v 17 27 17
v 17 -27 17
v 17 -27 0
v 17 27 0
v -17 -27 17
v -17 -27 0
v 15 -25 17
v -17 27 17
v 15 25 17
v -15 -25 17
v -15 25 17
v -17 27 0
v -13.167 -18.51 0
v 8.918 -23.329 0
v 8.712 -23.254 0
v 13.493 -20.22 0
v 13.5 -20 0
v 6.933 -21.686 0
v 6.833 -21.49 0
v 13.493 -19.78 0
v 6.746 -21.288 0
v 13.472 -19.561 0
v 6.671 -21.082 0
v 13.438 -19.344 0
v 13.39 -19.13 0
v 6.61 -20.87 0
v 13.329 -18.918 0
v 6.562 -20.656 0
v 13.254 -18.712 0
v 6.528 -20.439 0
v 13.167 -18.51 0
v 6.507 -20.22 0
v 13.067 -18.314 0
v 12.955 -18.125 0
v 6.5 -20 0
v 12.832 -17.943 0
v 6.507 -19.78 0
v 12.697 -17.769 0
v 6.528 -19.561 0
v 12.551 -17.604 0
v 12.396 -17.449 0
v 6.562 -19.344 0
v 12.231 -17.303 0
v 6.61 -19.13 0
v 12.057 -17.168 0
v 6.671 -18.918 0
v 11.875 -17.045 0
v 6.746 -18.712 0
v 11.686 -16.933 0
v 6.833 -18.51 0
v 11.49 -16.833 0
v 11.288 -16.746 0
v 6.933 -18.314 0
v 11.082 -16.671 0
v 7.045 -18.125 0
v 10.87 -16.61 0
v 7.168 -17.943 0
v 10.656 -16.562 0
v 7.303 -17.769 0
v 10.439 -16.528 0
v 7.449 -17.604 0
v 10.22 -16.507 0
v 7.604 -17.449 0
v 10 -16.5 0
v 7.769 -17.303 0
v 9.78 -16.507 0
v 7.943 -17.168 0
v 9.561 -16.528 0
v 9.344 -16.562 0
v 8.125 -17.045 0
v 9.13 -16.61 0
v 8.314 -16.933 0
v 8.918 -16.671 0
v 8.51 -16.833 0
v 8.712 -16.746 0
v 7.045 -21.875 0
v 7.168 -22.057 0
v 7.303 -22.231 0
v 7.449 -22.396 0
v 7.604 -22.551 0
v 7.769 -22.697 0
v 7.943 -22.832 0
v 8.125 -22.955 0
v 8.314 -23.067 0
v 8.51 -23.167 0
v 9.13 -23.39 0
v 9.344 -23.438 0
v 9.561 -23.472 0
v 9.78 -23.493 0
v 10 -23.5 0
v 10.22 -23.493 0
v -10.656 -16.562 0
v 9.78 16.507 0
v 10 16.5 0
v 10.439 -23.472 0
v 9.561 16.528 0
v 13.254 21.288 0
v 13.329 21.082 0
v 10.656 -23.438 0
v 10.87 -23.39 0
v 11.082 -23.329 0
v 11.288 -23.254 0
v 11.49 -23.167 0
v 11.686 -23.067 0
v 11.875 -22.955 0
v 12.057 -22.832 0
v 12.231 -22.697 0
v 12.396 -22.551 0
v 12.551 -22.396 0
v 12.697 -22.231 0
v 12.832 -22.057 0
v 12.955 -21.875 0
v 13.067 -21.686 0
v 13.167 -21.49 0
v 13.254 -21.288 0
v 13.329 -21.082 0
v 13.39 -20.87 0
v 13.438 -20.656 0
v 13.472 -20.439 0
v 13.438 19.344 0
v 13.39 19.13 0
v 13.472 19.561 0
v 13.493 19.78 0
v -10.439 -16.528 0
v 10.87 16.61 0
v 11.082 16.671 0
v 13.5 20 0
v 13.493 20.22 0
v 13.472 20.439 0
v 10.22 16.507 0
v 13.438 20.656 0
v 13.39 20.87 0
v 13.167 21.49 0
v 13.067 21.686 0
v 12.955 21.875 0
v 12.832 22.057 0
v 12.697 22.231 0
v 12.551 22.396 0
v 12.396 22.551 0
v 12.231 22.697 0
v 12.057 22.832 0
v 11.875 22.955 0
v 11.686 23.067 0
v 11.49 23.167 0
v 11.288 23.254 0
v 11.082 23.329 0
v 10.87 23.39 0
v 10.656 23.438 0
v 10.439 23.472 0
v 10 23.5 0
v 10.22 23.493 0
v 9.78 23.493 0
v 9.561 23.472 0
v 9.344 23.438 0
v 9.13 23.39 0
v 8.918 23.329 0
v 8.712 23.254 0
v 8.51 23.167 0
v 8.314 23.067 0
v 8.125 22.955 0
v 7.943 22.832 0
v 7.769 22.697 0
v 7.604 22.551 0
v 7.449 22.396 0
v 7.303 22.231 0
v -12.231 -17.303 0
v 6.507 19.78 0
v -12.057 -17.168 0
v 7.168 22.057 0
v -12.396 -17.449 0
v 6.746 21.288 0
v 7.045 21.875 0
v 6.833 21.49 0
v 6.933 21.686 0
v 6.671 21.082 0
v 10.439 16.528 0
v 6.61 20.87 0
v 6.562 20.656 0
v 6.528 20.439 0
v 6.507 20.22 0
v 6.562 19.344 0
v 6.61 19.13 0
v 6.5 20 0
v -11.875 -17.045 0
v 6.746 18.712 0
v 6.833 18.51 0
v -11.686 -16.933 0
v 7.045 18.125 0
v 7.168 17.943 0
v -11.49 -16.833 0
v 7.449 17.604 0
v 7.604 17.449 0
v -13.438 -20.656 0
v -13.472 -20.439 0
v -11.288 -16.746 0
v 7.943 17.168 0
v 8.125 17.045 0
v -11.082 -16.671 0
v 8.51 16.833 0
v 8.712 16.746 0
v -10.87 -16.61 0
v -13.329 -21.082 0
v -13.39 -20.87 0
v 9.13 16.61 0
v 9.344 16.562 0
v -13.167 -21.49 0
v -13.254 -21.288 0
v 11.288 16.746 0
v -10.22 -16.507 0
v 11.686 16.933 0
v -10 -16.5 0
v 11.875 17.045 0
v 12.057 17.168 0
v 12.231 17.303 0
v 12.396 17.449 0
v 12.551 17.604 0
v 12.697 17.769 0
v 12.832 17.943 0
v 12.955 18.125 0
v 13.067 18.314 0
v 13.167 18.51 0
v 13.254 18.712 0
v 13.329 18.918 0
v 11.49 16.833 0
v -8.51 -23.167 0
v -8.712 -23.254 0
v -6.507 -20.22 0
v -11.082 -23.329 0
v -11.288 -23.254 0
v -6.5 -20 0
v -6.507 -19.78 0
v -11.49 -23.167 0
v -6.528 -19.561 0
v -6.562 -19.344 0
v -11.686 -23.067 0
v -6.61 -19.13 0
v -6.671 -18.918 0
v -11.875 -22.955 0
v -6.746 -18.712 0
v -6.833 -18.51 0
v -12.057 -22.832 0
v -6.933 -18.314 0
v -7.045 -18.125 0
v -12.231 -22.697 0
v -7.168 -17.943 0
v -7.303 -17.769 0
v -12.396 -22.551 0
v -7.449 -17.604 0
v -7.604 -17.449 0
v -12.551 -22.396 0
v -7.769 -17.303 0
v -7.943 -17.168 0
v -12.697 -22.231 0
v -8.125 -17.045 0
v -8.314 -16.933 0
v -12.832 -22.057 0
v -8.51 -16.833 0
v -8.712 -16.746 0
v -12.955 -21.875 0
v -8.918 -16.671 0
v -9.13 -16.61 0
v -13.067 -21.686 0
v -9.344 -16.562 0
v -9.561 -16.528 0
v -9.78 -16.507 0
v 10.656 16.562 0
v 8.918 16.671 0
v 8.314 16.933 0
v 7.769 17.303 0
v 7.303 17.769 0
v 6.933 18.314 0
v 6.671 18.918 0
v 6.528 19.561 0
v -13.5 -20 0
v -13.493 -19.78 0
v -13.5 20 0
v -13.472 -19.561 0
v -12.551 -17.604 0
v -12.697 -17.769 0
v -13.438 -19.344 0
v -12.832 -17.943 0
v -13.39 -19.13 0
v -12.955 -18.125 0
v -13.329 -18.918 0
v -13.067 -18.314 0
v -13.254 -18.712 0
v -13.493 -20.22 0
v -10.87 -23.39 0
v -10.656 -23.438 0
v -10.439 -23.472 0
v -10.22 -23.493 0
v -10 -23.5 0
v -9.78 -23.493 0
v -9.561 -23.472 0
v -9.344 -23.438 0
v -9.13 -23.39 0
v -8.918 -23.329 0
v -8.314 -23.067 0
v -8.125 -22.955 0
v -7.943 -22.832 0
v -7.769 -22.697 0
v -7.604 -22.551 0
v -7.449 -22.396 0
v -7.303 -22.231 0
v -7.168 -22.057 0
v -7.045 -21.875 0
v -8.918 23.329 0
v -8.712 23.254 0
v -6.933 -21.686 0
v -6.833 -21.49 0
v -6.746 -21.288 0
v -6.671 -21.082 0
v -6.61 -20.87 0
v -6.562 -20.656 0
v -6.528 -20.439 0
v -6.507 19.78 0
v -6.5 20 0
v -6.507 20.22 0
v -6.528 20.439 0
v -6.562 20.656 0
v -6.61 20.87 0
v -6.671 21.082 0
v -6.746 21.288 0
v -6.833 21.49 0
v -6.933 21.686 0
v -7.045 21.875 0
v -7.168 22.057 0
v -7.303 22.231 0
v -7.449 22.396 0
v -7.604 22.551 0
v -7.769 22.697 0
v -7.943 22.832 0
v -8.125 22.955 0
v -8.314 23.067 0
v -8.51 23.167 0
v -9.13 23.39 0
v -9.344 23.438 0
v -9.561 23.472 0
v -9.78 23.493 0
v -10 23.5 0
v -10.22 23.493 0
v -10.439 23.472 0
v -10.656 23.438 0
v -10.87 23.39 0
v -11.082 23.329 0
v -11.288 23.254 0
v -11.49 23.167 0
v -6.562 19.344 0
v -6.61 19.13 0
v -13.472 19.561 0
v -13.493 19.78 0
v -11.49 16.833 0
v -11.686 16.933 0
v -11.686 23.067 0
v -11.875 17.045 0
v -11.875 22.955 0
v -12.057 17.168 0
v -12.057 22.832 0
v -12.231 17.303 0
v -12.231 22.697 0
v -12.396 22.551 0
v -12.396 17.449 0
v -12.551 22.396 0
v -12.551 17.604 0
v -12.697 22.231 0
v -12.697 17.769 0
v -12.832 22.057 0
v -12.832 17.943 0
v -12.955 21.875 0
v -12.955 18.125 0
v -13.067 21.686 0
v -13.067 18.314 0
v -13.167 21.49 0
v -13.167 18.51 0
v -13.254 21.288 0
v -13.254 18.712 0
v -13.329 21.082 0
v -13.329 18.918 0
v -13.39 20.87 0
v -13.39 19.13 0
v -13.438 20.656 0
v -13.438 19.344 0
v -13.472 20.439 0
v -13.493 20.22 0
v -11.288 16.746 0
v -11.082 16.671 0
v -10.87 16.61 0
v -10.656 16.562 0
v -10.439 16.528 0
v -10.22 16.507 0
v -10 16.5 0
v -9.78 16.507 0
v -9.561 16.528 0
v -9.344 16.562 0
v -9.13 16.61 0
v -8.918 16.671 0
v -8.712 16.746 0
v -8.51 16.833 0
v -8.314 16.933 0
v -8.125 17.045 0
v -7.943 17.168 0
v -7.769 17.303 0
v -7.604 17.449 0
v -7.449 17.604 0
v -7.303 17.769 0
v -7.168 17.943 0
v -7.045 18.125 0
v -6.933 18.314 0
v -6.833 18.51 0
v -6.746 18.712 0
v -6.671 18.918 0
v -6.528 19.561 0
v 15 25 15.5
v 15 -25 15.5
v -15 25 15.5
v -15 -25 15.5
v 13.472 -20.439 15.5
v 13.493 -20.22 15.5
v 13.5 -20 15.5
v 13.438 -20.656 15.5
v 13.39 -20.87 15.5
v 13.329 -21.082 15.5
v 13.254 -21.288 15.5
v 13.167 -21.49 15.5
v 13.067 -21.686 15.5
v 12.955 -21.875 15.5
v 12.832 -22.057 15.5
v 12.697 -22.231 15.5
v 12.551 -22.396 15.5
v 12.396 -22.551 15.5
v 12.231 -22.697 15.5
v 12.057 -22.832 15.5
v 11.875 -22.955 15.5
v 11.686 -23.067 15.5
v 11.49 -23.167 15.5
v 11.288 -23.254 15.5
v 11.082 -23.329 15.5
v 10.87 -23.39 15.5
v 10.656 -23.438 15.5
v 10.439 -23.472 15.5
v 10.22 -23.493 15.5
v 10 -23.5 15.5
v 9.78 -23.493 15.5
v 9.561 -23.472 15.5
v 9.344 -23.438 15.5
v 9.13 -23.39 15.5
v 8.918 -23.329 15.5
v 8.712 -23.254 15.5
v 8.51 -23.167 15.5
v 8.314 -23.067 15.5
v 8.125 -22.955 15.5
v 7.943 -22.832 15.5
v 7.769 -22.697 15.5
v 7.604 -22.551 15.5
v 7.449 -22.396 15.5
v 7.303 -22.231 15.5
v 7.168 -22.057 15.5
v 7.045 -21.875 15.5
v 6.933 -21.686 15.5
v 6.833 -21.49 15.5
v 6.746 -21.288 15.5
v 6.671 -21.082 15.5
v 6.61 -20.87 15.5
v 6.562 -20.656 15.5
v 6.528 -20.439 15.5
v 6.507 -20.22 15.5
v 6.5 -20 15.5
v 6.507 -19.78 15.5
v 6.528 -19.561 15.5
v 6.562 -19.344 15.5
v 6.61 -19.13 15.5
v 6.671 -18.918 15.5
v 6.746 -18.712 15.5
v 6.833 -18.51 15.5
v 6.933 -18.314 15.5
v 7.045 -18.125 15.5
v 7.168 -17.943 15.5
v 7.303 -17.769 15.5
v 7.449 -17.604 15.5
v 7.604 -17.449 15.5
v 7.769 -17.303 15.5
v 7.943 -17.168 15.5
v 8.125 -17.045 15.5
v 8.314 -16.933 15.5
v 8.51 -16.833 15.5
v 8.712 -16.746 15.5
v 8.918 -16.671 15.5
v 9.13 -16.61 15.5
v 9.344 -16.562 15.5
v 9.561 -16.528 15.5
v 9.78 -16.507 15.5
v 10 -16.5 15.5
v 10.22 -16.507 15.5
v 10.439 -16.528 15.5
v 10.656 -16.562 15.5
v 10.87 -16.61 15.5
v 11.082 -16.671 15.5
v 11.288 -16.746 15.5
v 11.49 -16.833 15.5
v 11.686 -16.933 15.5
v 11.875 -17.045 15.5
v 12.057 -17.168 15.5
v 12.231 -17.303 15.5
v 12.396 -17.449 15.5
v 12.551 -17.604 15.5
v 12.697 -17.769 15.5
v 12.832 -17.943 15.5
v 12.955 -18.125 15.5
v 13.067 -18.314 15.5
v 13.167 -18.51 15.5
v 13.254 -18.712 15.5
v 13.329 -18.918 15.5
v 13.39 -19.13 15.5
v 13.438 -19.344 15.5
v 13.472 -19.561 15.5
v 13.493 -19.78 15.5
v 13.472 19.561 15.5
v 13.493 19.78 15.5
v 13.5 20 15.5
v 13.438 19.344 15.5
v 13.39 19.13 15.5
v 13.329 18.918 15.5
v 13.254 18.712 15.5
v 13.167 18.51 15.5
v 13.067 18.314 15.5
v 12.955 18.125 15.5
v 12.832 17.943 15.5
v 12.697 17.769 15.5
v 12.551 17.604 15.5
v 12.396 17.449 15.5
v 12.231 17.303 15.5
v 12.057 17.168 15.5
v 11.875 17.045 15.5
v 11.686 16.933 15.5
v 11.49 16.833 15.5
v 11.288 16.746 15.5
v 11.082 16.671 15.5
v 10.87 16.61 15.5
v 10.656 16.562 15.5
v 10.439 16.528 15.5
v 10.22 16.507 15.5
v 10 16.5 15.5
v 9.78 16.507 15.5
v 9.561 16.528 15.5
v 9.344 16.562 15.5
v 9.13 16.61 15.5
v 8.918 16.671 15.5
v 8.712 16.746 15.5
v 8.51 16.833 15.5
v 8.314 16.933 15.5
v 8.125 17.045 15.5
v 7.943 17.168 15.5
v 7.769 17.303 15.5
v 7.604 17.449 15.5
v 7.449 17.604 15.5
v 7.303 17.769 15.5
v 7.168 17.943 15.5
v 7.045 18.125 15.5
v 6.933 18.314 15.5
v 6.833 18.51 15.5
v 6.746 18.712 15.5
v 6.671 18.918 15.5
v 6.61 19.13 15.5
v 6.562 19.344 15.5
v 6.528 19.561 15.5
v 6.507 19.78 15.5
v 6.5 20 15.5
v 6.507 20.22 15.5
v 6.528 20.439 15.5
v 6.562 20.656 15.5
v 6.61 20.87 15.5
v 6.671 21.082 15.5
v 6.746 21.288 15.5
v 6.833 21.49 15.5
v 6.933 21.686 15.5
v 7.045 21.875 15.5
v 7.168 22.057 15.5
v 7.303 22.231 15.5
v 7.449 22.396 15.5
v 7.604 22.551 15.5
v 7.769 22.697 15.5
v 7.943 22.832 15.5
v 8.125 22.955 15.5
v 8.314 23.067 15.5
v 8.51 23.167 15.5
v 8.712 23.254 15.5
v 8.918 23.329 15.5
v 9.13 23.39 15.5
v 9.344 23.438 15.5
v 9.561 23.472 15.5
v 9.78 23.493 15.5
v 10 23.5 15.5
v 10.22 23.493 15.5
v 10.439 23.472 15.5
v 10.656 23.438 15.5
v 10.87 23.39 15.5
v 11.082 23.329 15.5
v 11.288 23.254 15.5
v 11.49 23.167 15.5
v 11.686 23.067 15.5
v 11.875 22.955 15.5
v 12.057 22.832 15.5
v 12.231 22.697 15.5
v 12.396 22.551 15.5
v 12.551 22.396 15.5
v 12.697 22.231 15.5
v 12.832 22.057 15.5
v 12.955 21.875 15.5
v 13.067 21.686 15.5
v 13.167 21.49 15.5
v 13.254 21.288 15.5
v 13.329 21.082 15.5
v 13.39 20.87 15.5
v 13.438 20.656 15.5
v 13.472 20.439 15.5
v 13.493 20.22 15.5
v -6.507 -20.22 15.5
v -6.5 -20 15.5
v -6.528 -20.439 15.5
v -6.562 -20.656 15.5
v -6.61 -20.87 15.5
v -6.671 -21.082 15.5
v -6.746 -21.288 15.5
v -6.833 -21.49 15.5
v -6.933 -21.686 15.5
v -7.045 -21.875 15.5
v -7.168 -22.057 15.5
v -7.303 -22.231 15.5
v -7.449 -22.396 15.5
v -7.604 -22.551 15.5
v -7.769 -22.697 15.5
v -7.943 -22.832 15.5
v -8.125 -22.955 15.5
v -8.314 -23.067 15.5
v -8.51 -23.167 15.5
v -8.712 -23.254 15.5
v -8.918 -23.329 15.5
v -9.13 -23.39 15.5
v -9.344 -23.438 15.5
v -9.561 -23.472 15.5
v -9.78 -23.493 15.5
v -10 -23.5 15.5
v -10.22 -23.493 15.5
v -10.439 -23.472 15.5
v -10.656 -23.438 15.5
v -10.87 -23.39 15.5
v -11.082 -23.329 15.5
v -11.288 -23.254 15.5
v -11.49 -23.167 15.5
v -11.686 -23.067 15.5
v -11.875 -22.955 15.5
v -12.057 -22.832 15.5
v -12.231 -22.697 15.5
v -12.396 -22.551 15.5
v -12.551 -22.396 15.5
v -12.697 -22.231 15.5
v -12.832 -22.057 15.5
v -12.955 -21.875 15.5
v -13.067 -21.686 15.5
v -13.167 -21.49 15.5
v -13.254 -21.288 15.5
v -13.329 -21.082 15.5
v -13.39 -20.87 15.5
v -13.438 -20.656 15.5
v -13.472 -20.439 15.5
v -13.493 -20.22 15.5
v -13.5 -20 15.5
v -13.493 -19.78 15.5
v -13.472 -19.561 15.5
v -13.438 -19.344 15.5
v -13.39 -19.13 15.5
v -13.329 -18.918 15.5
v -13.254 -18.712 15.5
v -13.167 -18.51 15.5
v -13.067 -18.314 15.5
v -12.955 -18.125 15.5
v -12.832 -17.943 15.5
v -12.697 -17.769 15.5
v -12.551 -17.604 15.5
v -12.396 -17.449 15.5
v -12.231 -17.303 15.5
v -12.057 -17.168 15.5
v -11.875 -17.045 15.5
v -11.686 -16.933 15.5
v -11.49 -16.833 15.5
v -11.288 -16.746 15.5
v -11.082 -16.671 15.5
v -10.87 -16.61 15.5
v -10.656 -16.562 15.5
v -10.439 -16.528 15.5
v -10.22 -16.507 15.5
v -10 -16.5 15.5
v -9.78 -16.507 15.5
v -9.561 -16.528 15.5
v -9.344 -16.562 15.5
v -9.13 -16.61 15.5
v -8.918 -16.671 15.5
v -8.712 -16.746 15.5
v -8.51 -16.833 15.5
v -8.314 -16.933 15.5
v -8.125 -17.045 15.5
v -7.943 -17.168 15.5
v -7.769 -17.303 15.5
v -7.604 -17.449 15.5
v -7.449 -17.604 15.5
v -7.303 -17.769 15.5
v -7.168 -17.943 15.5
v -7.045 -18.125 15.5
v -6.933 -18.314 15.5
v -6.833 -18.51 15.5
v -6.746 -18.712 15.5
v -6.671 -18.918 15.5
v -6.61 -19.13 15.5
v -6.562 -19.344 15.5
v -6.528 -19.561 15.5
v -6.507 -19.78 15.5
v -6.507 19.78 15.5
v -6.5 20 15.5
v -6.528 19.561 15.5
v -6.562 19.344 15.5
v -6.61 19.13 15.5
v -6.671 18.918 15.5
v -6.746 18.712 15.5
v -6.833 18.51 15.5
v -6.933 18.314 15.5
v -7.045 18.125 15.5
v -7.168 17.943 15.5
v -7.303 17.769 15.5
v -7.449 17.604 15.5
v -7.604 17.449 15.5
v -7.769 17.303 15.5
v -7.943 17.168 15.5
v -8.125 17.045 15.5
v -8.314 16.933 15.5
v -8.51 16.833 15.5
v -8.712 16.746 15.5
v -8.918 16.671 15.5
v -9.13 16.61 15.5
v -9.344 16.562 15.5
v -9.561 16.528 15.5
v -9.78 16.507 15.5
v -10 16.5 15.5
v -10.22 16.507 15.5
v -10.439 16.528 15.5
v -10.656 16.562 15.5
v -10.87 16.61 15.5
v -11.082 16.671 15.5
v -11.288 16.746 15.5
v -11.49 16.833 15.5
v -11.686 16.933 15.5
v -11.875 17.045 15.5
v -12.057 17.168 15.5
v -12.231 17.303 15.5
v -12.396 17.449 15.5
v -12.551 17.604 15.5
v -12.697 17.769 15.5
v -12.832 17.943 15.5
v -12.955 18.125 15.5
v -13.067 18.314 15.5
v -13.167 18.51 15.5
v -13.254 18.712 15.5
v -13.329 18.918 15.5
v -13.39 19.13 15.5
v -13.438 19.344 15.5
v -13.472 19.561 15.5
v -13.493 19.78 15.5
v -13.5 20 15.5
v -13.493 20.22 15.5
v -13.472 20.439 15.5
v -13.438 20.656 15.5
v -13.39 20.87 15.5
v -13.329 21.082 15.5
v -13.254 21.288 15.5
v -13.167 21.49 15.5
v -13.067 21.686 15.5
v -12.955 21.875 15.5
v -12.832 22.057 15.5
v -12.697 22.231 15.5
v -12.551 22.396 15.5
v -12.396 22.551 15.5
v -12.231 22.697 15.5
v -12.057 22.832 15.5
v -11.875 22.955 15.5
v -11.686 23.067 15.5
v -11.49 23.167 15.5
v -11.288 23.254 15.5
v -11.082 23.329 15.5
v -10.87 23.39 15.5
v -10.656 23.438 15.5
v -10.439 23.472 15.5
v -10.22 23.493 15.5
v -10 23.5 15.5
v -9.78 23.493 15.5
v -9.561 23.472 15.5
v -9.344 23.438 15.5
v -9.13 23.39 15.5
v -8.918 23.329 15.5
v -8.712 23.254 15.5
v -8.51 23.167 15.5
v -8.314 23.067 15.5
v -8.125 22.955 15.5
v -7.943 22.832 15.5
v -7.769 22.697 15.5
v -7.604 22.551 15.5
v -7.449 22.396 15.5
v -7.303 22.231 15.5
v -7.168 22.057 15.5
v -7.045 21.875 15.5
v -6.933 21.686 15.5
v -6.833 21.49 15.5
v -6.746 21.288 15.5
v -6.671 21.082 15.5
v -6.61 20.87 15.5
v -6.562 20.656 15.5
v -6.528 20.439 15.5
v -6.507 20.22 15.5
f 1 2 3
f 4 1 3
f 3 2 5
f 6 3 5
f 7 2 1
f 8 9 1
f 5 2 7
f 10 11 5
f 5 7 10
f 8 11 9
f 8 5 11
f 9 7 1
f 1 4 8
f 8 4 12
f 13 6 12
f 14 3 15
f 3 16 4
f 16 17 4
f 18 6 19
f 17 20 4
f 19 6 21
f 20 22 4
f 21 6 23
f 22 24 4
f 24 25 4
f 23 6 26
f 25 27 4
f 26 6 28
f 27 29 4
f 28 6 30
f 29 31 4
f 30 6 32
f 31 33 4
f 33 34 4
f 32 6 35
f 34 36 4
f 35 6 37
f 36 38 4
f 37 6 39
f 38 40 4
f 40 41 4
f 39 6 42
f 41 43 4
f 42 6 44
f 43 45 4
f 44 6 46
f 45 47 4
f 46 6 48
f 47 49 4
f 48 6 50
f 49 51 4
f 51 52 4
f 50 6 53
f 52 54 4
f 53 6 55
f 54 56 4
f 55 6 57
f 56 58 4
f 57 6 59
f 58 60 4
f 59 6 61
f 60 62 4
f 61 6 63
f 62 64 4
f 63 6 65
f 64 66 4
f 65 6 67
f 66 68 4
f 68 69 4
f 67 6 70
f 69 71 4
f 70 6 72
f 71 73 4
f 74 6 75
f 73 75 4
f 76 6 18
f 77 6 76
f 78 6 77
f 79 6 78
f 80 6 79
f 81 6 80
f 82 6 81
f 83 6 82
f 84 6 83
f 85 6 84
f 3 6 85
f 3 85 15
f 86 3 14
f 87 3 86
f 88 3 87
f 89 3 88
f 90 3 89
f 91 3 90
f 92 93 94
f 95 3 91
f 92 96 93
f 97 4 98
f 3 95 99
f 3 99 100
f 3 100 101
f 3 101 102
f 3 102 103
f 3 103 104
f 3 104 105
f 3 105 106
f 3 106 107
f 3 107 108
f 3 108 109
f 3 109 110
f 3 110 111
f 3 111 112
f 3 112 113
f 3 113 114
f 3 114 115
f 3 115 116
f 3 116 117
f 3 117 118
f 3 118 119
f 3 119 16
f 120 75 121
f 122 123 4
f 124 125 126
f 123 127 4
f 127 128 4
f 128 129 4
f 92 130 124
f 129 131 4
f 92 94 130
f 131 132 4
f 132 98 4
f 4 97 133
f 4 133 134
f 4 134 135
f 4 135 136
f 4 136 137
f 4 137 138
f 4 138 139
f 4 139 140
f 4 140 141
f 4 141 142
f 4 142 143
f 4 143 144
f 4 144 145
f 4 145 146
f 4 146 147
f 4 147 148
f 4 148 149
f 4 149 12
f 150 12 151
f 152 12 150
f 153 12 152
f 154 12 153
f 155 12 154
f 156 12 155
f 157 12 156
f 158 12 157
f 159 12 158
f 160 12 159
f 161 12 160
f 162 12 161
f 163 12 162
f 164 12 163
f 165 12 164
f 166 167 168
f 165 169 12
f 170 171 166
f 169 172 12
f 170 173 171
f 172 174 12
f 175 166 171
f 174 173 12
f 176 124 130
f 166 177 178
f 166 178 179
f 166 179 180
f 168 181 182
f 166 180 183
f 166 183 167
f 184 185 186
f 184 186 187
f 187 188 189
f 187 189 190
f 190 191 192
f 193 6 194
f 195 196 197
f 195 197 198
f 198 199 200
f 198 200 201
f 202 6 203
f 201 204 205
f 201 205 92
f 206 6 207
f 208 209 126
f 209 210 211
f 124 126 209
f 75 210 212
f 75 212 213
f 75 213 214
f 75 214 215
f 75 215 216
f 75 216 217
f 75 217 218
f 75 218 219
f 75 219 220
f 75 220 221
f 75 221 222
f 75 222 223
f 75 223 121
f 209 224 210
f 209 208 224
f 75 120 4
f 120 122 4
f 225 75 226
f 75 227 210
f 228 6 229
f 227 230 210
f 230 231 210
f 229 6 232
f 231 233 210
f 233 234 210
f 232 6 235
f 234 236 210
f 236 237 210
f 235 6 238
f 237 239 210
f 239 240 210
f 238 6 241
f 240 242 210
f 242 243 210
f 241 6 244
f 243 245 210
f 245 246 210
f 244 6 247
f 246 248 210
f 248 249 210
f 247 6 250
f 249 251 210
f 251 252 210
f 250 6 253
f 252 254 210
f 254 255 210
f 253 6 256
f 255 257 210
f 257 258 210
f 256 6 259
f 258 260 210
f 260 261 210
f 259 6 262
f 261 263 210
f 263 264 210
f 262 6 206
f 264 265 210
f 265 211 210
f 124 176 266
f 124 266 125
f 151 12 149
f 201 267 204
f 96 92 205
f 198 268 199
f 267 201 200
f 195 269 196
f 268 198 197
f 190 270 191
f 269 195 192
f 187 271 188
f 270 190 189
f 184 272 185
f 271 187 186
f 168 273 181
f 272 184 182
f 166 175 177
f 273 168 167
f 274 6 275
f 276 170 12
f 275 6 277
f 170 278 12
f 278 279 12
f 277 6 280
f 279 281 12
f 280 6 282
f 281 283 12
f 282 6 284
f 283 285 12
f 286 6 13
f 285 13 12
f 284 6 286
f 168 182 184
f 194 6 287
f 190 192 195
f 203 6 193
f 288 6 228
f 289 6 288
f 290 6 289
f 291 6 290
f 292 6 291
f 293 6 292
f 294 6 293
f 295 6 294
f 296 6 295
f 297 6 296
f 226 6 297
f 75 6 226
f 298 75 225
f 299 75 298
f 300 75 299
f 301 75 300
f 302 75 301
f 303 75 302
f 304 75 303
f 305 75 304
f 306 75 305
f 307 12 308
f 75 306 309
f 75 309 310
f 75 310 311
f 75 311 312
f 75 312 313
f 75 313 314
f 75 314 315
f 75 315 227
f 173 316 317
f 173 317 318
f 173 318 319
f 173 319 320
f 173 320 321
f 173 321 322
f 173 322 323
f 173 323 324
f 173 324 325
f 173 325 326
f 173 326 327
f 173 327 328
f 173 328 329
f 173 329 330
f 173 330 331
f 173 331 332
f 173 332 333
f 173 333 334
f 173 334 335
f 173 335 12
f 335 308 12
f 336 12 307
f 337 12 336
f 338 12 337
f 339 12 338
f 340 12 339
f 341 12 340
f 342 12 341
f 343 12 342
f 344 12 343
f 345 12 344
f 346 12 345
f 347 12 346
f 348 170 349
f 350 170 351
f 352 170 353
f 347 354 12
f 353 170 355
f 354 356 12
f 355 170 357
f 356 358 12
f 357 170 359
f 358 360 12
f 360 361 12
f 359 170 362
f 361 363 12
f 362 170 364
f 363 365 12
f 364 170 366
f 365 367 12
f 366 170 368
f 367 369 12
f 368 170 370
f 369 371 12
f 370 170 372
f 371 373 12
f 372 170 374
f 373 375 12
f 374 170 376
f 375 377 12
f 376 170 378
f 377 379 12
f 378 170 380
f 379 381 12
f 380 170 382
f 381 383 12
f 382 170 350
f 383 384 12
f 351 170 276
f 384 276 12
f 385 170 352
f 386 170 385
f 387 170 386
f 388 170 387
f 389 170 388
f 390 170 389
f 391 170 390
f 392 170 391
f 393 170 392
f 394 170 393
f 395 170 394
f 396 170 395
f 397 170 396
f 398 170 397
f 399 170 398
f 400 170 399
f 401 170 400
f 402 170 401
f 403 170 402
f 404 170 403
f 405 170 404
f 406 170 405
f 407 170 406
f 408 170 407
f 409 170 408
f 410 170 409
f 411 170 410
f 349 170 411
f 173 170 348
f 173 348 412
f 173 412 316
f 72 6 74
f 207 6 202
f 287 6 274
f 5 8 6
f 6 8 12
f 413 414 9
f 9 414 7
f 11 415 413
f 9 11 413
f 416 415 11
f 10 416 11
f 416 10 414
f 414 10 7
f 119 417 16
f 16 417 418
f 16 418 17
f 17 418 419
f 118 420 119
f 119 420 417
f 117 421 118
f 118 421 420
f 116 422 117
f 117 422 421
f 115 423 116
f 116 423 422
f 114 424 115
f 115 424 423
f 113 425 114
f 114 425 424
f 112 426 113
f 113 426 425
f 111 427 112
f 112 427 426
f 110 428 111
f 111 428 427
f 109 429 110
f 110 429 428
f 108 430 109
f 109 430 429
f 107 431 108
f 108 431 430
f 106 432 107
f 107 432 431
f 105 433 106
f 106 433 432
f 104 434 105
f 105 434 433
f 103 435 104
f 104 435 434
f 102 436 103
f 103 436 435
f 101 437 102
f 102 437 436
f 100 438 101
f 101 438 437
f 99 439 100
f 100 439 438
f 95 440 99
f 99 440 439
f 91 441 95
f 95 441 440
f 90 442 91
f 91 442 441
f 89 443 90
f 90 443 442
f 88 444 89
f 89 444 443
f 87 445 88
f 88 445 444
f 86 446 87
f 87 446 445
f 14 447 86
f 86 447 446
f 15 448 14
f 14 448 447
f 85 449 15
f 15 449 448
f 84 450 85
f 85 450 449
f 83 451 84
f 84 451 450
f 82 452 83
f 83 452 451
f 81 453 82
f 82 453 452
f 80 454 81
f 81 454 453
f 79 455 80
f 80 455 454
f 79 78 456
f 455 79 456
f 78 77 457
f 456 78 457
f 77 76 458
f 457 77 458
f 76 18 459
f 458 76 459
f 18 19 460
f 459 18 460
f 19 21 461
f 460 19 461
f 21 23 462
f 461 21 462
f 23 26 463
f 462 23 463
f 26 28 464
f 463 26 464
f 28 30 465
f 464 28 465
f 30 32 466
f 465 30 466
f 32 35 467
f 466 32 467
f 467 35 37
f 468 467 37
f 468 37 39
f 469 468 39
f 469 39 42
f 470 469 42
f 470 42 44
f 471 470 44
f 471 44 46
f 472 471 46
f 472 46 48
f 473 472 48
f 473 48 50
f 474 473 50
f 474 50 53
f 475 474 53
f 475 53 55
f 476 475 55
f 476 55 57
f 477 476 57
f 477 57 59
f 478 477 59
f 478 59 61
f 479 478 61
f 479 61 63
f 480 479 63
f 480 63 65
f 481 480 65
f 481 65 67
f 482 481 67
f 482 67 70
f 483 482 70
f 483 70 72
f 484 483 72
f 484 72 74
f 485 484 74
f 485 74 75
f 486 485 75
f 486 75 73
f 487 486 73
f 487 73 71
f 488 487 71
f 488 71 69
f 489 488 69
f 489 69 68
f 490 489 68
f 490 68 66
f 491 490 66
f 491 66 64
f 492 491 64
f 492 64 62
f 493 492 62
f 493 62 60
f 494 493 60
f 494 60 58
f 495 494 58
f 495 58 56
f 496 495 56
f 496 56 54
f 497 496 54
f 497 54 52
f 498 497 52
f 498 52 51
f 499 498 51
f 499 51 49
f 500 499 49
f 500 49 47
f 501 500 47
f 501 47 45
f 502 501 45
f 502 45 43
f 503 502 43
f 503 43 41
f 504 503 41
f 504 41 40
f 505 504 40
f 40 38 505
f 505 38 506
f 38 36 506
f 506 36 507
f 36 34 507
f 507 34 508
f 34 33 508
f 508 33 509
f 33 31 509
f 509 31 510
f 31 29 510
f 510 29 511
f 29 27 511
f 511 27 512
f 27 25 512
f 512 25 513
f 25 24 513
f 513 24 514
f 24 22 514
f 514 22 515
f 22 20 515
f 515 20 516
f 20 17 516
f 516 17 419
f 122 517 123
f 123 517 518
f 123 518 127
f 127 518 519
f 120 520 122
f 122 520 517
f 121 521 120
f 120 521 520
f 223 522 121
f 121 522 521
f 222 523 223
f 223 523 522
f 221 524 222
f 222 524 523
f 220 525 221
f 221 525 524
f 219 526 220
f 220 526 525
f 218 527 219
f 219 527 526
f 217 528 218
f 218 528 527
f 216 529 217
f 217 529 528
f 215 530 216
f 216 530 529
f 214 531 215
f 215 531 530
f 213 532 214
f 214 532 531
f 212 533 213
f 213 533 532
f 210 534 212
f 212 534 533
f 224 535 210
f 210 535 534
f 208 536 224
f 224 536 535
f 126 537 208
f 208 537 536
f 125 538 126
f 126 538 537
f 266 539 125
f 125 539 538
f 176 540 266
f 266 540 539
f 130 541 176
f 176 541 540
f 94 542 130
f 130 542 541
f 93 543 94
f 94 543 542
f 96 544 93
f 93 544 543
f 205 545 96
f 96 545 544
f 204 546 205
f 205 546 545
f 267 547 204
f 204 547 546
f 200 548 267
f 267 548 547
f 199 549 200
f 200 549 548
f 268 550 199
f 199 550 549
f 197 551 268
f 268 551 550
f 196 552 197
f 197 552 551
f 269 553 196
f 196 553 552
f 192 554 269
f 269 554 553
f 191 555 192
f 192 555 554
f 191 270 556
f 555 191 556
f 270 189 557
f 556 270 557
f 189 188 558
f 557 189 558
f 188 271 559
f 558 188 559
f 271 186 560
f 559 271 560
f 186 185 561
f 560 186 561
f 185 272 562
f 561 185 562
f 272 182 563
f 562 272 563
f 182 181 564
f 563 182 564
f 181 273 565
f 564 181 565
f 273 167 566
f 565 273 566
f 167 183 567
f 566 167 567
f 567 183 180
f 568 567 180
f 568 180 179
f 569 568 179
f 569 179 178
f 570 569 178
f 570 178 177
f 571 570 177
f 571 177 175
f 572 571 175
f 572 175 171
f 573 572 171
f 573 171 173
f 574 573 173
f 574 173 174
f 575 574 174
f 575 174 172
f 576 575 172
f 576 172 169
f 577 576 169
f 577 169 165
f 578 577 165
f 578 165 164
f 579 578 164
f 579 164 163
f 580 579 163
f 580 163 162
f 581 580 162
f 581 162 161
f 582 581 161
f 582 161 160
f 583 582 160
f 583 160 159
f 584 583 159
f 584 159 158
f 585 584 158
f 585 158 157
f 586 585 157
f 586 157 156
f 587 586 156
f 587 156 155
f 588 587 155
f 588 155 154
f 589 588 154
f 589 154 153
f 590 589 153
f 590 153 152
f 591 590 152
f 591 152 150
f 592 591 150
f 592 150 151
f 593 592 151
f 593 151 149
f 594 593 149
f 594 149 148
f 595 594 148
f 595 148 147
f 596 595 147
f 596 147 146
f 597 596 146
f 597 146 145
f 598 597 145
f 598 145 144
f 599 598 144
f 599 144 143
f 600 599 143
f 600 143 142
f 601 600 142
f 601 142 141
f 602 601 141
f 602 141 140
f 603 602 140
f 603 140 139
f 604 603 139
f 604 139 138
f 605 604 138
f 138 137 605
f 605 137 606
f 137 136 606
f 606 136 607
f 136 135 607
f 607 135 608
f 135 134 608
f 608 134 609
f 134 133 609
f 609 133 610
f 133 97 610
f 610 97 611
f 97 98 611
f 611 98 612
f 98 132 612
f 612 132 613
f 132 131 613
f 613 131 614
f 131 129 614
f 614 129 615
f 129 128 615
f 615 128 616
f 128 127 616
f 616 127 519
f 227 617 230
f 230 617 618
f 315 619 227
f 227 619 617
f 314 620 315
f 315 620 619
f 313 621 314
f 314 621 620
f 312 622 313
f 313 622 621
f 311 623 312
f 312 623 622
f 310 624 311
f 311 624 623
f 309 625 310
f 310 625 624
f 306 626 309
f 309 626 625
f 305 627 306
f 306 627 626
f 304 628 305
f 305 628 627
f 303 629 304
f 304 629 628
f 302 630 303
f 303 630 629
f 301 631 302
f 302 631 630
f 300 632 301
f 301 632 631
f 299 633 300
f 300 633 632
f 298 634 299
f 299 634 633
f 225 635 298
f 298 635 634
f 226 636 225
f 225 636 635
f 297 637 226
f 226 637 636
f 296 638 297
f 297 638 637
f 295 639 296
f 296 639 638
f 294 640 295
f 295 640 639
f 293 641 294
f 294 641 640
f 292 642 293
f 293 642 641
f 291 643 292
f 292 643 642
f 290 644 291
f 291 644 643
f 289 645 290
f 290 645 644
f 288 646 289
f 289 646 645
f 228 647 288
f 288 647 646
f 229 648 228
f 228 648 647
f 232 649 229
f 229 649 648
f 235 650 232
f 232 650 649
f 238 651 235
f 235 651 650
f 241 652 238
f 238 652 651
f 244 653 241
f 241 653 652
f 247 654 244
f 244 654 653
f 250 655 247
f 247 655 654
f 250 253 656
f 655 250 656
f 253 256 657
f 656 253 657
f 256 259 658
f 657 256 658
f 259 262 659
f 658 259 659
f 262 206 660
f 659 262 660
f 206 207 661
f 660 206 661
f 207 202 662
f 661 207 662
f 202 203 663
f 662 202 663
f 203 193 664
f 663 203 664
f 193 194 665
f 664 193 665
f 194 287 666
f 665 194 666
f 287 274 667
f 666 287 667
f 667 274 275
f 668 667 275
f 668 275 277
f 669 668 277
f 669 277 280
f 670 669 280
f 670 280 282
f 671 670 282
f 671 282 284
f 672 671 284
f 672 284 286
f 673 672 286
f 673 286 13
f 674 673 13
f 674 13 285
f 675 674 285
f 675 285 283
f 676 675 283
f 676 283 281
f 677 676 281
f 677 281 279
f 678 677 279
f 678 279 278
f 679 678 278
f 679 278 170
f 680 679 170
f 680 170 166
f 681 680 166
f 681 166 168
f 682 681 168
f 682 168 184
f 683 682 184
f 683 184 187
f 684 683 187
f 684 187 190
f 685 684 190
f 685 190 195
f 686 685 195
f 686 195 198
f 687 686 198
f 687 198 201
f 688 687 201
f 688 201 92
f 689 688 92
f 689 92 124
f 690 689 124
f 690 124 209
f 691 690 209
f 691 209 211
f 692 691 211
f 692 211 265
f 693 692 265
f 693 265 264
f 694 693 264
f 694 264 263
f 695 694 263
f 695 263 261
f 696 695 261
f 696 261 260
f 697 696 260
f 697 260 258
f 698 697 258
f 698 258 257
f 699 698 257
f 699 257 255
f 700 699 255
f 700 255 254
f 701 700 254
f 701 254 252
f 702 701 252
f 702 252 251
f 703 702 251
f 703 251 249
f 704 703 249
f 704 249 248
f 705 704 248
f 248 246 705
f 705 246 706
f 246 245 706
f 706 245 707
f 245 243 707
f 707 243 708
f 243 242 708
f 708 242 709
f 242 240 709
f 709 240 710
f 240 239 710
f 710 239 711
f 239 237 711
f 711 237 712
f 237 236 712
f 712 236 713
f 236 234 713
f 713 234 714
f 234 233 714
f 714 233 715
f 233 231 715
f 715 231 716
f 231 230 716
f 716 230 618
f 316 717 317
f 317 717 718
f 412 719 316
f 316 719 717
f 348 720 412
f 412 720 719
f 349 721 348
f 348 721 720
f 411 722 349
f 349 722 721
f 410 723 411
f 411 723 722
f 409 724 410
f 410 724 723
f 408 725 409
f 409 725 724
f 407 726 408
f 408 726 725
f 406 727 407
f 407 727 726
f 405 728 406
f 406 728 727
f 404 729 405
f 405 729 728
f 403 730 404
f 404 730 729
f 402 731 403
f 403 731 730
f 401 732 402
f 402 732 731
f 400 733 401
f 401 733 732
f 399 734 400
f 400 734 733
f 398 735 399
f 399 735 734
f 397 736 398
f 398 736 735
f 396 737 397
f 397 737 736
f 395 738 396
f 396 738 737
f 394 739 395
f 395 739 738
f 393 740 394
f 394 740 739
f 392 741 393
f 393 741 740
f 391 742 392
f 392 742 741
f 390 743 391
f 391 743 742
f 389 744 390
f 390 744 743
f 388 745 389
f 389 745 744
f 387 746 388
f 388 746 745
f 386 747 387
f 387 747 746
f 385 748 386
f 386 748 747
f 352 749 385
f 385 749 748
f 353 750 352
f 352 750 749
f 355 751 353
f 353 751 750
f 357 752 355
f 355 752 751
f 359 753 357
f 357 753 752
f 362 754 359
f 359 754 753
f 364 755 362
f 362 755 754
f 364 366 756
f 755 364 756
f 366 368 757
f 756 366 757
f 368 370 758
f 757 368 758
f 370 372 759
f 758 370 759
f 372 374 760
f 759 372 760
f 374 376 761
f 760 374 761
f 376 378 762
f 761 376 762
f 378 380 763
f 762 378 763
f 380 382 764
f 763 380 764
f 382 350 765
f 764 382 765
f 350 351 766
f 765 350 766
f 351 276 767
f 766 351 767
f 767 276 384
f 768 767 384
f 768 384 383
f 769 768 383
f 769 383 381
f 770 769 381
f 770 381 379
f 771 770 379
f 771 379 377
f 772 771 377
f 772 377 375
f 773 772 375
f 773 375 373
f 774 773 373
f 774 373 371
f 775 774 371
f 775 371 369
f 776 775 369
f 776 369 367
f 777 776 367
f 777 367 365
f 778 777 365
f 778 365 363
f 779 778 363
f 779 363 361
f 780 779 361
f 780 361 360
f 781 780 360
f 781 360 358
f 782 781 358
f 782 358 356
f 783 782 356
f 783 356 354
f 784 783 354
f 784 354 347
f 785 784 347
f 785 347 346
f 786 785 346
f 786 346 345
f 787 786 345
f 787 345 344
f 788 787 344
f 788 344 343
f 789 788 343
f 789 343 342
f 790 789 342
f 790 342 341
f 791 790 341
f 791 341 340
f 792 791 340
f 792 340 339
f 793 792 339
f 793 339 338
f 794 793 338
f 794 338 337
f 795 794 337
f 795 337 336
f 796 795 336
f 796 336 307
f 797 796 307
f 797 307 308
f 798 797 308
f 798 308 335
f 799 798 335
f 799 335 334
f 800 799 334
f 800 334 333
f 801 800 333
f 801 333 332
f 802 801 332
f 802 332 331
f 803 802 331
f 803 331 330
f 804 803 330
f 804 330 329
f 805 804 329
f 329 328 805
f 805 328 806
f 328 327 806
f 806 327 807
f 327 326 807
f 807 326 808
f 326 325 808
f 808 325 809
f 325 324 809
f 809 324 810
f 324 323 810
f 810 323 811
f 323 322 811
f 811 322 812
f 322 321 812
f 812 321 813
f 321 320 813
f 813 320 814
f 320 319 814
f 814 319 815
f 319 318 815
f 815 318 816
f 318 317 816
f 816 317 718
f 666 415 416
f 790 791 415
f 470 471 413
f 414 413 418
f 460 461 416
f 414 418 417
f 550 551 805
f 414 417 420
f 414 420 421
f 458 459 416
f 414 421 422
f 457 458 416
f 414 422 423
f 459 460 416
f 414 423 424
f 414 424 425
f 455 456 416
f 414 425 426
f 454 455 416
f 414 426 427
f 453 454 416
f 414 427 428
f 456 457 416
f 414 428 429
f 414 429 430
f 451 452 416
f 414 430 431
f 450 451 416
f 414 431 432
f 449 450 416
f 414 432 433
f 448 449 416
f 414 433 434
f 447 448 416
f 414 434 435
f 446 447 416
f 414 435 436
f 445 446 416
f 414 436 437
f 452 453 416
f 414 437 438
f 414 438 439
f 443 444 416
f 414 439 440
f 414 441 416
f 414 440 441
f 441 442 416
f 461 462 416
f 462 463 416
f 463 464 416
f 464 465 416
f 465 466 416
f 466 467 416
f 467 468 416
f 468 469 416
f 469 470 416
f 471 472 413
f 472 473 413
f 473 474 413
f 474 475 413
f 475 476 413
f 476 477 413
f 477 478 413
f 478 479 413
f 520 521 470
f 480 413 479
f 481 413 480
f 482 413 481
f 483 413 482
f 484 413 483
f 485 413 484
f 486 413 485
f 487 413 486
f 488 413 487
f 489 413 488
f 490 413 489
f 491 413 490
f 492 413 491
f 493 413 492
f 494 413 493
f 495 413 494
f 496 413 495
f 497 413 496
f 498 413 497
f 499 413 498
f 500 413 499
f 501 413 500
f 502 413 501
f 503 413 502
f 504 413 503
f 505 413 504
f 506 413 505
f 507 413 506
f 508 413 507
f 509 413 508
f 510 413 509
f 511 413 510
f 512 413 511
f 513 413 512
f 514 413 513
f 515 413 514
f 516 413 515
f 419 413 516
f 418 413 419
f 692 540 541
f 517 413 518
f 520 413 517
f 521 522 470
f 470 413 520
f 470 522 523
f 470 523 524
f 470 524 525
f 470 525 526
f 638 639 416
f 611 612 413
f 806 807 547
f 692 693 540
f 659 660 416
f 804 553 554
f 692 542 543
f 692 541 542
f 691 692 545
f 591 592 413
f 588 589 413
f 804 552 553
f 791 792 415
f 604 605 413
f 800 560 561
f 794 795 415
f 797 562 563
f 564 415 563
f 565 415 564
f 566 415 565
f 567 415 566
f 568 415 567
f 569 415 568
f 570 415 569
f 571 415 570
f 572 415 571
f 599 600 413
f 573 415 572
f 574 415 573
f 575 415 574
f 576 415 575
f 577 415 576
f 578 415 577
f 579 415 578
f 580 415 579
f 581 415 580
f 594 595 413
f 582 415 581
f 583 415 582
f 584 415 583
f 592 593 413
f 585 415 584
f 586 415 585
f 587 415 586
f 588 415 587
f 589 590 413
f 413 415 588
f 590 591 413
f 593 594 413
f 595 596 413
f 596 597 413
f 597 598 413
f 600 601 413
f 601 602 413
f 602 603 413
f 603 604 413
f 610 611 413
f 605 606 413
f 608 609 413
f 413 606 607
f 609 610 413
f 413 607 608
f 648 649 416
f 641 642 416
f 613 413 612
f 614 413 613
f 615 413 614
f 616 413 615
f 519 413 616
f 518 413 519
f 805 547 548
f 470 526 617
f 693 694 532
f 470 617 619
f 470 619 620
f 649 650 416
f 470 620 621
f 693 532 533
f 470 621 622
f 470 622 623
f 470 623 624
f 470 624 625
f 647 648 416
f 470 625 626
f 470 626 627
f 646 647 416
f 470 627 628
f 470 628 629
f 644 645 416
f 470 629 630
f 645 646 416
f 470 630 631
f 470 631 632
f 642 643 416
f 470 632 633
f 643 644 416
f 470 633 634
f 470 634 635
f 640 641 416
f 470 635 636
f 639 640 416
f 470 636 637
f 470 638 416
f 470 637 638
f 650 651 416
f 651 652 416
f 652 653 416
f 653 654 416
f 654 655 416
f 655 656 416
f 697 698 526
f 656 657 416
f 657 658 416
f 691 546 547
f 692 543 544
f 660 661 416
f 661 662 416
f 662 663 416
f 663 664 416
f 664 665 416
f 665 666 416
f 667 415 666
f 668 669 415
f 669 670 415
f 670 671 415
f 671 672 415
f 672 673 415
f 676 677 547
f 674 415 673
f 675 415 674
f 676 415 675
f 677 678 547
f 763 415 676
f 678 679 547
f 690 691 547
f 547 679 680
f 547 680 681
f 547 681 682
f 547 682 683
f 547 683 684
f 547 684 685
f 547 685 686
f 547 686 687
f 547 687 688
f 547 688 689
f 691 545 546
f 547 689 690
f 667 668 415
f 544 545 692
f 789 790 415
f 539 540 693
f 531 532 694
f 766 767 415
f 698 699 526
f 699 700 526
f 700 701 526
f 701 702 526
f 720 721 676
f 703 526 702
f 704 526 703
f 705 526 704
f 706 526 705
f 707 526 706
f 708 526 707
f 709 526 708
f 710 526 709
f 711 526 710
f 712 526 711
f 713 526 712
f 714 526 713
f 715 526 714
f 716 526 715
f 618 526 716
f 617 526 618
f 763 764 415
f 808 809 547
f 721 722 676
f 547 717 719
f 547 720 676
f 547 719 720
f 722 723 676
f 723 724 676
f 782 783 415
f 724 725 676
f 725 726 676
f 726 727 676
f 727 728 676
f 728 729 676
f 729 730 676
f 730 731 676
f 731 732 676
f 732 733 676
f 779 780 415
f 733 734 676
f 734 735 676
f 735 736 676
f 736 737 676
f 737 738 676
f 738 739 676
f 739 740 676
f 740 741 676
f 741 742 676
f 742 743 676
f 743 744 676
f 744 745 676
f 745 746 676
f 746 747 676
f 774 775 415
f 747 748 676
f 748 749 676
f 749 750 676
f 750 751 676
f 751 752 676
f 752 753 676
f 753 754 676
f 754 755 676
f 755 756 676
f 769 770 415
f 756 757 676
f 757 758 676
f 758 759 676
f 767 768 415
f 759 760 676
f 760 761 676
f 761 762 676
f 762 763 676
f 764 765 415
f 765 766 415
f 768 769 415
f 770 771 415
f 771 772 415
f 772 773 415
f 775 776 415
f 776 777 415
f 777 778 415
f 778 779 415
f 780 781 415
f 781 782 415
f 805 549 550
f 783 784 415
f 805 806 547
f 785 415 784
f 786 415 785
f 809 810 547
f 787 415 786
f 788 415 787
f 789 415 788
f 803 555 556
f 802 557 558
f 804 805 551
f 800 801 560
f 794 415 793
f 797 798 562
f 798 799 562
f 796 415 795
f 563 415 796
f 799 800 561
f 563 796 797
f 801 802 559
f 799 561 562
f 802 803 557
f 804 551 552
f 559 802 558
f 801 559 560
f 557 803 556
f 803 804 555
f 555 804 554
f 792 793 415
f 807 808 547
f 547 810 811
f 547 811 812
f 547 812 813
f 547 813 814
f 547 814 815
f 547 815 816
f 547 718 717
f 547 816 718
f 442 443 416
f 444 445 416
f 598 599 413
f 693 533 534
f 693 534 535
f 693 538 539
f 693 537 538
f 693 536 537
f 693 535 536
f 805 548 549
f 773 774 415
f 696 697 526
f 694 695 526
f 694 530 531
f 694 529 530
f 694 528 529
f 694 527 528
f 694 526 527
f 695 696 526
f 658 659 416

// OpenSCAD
//drivebase caster wheel
caster_wheel_radius=25;
caster_wheel_width=20;
caster_wheel_offset=25;
caster_wheel_mountx=30;
caster_wheel_mounty=50;
caster_wheel_mountz=2;
caster_wheel_cylinder_radius=35/2;
caster_wheel_cylinder_height=8;
caster_wheel_base_width=35;
caster_wheel_base_length=50;
caster_wheel_base_height=35;
caster_wheel_axe_offset=7;
caster_wheel_axe=5;
caster_wheel_axe_length=25;
caster_wheel_tap=7;
caster_wheel_tap_offset=5;

module caster_wheel() {

	difference() {
	union() {
   // wider filler socket with sink for caster wheel mount plate
	color ("green") translate ([0,caster_wheel_offset,caster_wheel_base_height-caster_wheel_axe_offset+caster_wheel_cylinder_height+caster_wheel_mountz+3]) cube ([caster_wheel_mountx+4,caster_wheel_mounty+4,15+caster_wheel_mountz],true);
   


   }
	// TAPS
	union() {
		translate ([-caster_wheel_mountx/2+caster_wheel_tap_offset,caster_wheel_offset-caster_wheel_mounty/2+caster_wheel_tap_offset,caster_wheel_base_height-caster_wheel_axe_offset+caster_wheel_cylinder_height-10]) cylinder (caster_wheel_mountz+20+caster_wheel_mountz,caster_wheel_tap/2,caster_wheel_tap/2,$fn=100);
		translate ([caster_wheel_mountx/2-caster_wheel_tap_offset,caster_wheel_offset-caster_wheel_mounty/2+caster_wheel_tap_offset,caster_wheel_base_height-caster_wheel_axe_offset+caster_wheel_cylinder_height-10]) cylinder (caster_wheel_mountz+20+caster_wheel_mountz,caster_wheel_tap/2,caster_wheel_tap/2,$fn=100);
		translate ([-caster_wheel_mountx/2+caster_wheel_tap_offset,caster_wheel_offset+caster_wheel_mounty/2-caster_wheel_tap_offset,caster_wheel_base_height-caster_wheel_axe_offset+caster_wheel_cylinder_height-10]) cylinder (caster_wheel_mountz+20+caster_wheel_mountz,caster_wheel_tap/2,caster_wheel_tap/2,$fn=100);
		translate ([caster_wheel_mountx/2-caster_wheel_tap_offset,caster_wheel_offset+caster_wheel_mounty/2-caster_wheel_tap_offset,caster_wheel_base_height-caster_wheel_axe_offset+caster_wheel_cylinder_height-10]) cylinder (caster_wheel_mountz+20+caster_wheel_mountz,caster_wheel_tap/2,caster_wheel_tap/2,$fn=100);
   // caster wheel mount sink
	color ("blue") translate ([0,caster_wheel_offset,caster_wheel_base_height-caster_wheel_axe_offset+caster_wheel_cylinder_height+caster_wheel_mountz-15]) cube ([caster_wheel_mountx,caster_wheel_mounty,20+caster_wheel_mountz],true);
	}
	}
}

rotate([0,180,0]) translate([0,-25,-49.5])  caster_wheel();
